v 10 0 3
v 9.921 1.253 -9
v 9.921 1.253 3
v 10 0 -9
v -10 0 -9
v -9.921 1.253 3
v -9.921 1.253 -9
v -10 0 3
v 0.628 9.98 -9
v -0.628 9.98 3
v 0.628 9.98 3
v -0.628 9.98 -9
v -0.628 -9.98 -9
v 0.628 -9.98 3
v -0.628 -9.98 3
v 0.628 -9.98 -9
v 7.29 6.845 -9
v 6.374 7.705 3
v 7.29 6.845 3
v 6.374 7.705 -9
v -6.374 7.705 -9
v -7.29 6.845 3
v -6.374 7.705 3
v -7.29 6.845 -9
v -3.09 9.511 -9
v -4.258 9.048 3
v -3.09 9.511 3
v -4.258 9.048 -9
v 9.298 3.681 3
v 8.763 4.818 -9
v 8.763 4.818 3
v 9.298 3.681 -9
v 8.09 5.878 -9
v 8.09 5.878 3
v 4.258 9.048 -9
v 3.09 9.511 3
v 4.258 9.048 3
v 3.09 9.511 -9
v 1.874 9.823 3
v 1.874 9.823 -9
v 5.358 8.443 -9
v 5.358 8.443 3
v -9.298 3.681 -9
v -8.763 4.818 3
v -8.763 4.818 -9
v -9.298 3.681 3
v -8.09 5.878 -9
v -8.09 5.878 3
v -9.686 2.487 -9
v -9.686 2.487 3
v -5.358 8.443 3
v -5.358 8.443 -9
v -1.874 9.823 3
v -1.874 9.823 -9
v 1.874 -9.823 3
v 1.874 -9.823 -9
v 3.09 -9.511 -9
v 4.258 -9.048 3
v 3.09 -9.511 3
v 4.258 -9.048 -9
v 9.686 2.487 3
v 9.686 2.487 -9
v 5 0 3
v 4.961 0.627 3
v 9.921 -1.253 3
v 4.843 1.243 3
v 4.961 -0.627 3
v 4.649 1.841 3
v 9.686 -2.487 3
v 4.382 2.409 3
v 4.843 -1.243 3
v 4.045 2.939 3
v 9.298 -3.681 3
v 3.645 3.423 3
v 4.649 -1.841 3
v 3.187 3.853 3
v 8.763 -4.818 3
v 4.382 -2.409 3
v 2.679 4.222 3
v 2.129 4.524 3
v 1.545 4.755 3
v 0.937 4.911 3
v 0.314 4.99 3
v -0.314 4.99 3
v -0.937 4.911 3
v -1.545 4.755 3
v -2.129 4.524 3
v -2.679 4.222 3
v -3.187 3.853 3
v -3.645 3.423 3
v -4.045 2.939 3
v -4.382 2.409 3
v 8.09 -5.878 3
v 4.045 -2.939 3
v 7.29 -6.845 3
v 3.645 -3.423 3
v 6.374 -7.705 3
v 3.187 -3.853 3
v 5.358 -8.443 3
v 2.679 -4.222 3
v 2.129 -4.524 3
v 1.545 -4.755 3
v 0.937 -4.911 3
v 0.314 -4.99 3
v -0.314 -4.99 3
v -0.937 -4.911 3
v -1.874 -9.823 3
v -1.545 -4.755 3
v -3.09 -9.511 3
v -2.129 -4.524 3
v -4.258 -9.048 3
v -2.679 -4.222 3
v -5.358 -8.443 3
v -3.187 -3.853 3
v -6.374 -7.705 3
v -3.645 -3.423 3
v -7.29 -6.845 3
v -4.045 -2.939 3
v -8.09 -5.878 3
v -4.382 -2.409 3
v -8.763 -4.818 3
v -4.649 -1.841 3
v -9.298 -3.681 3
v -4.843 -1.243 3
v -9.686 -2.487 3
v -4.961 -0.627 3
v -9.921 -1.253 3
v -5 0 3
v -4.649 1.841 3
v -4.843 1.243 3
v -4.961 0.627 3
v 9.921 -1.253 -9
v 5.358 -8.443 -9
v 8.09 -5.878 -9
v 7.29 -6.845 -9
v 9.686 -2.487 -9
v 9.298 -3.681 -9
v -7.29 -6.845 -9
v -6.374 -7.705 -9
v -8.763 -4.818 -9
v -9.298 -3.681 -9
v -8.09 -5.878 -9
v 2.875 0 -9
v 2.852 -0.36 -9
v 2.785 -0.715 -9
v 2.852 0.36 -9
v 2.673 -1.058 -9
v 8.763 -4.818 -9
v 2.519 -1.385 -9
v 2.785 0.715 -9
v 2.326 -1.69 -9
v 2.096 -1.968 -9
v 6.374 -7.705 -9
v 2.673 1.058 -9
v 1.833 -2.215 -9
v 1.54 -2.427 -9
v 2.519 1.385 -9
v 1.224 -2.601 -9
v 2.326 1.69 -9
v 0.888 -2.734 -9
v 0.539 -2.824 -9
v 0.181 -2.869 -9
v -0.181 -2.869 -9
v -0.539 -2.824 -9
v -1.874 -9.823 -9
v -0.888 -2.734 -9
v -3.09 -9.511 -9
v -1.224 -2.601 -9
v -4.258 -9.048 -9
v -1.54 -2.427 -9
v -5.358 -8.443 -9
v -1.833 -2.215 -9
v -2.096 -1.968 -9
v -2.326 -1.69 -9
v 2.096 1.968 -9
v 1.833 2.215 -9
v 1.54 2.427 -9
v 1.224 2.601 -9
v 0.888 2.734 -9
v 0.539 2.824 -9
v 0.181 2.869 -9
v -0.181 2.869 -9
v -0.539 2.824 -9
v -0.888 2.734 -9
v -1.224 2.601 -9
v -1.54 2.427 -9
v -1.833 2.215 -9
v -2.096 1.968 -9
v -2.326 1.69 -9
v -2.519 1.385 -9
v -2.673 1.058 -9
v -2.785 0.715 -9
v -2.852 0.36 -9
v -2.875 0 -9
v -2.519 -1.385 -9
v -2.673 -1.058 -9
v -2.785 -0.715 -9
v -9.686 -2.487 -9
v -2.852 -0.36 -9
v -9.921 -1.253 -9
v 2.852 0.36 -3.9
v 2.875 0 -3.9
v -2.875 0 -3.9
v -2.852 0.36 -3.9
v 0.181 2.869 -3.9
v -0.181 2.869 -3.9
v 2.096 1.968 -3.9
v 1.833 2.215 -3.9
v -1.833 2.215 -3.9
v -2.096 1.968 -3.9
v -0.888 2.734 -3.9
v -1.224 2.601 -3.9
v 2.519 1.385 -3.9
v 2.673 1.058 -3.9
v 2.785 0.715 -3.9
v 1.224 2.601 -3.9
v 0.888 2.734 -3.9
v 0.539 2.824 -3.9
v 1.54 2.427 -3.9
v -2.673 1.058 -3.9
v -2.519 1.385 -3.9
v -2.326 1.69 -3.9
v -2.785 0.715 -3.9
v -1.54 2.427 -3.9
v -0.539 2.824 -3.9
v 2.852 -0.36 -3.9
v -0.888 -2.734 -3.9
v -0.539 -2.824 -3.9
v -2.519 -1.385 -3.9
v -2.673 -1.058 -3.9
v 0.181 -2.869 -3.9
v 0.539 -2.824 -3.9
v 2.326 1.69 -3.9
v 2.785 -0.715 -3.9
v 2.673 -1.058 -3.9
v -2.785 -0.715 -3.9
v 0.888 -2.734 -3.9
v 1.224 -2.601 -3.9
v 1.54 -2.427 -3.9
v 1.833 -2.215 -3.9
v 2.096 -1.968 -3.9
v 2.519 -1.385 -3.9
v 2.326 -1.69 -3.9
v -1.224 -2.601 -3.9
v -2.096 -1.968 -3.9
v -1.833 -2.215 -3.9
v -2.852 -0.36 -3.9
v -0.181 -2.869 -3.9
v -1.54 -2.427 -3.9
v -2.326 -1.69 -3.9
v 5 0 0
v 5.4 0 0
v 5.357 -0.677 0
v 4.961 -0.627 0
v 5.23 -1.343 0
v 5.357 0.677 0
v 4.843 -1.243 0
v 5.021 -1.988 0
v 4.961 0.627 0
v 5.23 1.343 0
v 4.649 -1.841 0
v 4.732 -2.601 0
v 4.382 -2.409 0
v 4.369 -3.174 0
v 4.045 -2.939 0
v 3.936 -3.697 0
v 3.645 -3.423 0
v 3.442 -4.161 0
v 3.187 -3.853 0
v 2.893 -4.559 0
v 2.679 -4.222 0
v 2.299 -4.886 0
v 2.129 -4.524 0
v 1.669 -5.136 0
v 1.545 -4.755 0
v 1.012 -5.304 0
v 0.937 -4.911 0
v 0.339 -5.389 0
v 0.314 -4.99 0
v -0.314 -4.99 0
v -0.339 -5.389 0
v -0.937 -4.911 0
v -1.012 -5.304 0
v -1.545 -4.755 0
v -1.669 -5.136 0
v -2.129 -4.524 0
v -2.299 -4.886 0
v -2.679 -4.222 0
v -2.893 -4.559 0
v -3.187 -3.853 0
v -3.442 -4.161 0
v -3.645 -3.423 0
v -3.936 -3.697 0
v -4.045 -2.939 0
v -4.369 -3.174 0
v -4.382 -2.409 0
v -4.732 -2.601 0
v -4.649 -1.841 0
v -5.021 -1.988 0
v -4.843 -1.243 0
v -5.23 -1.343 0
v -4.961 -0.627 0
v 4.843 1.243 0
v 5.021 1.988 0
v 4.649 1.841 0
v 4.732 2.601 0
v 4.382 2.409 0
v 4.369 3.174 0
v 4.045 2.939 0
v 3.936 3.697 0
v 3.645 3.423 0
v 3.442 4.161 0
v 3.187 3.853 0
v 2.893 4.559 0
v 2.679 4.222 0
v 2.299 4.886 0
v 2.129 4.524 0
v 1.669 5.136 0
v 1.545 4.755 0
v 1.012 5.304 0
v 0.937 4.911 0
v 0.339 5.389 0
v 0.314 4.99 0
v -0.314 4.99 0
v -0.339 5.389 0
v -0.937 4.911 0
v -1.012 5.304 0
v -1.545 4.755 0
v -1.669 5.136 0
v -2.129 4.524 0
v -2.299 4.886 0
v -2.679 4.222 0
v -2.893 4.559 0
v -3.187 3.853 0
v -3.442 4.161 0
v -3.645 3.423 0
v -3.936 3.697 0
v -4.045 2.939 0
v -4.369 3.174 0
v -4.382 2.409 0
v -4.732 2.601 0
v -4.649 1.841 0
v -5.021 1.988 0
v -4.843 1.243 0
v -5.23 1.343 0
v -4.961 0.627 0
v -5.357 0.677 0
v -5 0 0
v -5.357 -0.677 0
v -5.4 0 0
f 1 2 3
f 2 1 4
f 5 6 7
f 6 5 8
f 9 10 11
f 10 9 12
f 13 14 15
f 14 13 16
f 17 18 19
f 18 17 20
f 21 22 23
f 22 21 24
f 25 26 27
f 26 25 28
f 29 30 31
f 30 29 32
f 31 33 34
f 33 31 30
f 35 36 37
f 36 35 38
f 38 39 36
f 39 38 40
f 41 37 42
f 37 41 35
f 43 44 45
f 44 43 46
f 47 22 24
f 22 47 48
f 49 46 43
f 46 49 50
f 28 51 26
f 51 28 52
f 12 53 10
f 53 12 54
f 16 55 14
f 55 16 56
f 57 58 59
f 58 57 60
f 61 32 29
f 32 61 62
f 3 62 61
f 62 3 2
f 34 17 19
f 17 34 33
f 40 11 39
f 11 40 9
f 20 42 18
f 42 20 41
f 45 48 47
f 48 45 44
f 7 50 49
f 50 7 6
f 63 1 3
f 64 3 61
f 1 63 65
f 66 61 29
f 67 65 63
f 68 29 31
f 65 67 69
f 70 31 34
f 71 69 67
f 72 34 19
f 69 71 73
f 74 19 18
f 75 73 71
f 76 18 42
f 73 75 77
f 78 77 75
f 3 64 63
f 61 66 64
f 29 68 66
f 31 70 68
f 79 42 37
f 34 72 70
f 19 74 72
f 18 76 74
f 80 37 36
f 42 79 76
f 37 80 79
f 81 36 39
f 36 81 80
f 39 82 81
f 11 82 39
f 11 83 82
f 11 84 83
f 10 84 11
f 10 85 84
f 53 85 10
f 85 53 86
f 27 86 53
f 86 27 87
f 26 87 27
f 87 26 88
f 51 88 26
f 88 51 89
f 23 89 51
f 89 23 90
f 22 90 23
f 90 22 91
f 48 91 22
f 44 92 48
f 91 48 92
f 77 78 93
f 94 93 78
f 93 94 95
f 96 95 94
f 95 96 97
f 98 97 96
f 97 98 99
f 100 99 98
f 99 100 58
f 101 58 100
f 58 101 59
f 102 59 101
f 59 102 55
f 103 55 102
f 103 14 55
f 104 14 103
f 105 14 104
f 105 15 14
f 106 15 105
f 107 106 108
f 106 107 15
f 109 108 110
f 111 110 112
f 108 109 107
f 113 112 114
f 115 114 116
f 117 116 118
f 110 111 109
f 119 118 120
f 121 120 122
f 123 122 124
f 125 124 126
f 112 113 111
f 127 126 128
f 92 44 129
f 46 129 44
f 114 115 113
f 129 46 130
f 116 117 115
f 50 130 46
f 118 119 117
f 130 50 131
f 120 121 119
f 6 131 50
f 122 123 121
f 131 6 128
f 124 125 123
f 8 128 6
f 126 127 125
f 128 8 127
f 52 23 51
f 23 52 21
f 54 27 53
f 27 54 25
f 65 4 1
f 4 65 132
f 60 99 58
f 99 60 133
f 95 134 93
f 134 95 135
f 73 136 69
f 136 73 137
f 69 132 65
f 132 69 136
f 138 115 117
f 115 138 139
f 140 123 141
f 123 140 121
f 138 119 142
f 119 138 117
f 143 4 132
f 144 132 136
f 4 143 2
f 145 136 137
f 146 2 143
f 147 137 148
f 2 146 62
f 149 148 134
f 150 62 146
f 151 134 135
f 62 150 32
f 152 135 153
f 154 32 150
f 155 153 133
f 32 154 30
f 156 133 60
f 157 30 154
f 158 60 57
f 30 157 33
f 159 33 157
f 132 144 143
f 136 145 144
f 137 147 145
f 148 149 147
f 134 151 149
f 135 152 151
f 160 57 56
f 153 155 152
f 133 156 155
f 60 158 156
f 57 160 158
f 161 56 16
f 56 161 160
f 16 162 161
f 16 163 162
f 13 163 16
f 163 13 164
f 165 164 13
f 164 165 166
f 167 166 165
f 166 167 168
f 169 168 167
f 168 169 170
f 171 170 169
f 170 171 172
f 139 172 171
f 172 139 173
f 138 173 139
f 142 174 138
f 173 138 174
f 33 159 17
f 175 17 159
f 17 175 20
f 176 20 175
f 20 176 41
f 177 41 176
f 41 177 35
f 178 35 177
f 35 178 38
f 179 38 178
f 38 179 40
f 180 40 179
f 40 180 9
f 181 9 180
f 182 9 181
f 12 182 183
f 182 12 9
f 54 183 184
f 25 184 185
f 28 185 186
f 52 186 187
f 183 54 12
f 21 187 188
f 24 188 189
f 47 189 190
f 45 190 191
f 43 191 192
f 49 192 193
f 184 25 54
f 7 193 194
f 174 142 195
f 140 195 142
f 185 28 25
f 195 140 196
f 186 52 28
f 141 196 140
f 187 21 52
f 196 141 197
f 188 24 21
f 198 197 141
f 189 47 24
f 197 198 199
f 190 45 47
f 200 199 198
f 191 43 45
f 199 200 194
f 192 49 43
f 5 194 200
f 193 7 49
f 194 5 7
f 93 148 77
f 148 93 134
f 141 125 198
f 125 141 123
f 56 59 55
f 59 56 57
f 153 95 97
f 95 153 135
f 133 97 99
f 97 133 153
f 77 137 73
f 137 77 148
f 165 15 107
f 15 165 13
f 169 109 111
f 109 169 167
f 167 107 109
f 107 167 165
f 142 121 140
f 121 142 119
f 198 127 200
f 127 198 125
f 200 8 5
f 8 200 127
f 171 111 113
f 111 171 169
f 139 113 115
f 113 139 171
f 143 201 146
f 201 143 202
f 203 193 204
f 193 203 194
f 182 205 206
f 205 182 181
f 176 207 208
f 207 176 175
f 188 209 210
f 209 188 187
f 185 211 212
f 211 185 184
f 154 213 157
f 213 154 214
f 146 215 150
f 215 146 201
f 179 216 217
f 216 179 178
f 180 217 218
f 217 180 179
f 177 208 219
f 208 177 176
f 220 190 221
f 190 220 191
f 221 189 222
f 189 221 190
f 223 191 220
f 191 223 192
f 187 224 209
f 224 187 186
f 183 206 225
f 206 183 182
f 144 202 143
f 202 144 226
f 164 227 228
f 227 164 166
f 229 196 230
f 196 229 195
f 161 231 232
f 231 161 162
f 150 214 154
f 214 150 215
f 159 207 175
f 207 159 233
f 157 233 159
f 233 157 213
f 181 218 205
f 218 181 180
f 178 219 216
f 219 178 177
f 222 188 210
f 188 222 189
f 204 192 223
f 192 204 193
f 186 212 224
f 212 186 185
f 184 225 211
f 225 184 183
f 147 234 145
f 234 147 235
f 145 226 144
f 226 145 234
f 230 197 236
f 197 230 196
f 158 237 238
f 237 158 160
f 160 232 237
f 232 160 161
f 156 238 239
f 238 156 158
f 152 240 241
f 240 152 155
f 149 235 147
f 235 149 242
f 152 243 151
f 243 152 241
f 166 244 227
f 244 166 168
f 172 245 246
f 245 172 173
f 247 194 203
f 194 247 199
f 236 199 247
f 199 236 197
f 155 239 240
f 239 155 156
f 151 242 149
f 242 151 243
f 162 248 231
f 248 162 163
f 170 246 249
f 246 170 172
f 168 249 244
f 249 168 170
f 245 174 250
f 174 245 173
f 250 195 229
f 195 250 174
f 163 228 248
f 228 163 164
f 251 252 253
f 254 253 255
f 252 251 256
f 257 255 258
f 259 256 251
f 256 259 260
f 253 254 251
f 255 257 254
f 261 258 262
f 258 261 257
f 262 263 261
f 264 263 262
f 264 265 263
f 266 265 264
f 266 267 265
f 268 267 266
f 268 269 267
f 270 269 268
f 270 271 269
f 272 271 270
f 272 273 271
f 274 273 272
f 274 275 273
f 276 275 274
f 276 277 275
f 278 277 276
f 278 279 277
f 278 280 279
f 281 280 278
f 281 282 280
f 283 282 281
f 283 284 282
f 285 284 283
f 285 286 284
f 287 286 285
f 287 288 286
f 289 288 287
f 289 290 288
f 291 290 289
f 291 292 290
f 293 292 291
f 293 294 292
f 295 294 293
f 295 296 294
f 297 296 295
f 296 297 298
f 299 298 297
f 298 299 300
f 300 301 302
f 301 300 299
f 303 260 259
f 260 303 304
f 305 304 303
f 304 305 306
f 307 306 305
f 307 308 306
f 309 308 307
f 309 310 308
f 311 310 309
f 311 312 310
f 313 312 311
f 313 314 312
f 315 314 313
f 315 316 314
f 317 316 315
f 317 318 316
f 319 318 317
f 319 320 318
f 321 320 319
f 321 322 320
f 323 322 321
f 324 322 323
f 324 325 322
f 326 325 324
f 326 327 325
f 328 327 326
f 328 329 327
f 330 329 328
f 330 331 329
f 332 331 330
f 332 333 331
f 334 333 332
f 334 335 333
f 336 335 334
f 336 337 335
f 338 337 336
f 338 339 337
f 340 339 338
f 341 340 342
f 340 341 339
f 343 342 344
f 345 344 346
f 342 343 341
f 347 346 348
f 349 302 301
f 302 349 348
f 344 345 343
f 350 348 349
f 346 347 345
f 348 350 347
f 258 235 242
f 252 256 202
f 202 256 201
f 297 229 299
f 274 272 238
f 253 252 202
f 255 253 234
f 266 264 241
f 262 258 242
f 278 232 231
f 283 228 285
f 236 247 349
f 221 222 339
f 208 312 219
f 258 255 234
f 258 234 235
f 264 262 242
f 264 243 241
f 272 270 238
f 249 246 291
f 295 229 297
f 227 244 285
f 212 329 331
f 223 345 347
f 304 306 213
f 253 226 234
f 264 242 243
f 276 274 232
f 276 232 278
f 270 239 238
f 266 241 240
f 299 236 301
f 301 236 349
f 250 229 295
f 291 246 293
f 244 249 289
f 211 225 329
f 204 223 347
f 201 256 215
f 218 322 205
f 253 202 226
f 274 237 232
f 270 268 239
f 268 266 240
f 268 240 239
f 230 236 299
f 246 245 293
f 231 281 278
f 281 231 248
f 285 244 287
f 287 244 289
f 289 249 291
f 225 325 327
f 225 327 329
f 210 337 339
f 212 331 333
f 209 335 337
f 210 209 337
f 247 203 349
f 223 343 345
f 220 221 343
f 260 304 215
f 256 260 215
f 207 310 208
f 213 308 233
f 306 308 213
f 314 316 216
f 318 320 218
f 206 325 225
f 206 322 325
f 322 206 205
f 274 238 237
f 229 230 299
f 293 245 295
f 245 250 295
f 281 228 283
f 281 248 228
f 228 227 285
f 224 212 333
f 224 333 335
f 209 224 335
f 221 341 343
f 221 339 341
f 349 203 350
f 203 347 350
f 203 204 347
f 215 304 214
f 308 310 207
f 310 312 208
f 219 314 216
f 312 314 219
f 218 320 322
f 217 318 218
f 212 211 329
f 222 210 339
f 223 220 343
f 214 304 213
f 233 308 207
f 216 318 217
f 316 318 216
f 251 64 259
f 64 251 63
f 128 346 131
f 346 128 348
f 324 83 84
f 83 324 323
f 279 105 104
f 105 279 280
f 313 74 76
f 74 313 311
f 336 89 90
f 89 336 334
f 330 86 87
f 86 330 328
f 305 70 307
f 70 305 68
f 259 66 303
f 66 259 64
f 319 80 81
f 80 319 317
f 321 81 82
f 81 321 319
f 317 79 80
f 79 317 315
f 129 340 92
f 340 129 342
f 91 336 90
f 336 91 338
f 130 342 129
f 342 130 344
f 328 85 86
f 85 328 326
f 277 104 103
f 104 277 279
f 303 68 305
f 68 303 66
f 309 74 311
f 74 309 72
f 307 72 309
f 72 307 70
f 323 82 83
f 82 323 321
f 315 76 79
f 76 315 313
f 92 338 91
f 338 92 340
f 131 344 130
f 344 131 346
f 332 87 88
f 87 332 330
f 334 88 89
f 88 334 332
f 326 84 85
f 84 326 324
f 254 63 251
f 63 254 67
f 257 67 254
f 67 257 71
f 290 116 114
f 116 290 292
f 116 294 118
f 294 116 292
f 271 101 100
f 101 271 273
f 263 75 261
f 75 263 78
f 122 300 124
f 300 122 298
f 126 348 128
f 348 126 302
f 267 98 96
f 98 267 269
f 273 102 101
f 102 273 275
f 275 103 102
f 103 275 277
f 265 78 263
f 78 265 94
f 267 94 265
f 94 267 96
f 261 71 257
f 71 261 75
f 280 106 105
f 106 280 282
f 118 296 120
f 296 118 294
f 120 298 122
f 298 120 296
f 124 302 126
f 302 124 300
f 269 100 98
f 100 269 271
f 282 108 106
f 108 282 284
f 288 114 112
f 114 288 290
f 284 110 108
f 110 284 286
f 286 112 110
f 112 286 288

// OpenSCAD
$fn = 50;

difference() {
	union() {
		translate(v = [0, 0, -9.0]) {
			cylinder(h = 12, r = 10.0);
		}
		#translate(v = [0, 0, -12.0]) {
			cylinder(h = 12, r = 2.875);
		}
	}
	union() {
		translate(v = [0, 0, 0]) {
			rotate(a = [0, 0, 0]) {
				difference() {
					union() {
						translate(v = [0, 0, -12.0]) {
							cylinder(h = 12, r = 2.6);
						}
						translate(v = [0, 0, -3.9]) {
							cylinder(h = 3.9, r1 = 2.875, r2 = 5.4);
						}
						translate(v = [0, 0, -12.0]) {
							cylinder(h = 12, r = 2.875);
						}
						translate(v = [0, 0, -12.0]) {
							cylinder(h = 12, r = 2.6);
						}
					}
					union();
				}
			}
		}
		#cylinder(h = 3, r = 5.0);
	}
}
